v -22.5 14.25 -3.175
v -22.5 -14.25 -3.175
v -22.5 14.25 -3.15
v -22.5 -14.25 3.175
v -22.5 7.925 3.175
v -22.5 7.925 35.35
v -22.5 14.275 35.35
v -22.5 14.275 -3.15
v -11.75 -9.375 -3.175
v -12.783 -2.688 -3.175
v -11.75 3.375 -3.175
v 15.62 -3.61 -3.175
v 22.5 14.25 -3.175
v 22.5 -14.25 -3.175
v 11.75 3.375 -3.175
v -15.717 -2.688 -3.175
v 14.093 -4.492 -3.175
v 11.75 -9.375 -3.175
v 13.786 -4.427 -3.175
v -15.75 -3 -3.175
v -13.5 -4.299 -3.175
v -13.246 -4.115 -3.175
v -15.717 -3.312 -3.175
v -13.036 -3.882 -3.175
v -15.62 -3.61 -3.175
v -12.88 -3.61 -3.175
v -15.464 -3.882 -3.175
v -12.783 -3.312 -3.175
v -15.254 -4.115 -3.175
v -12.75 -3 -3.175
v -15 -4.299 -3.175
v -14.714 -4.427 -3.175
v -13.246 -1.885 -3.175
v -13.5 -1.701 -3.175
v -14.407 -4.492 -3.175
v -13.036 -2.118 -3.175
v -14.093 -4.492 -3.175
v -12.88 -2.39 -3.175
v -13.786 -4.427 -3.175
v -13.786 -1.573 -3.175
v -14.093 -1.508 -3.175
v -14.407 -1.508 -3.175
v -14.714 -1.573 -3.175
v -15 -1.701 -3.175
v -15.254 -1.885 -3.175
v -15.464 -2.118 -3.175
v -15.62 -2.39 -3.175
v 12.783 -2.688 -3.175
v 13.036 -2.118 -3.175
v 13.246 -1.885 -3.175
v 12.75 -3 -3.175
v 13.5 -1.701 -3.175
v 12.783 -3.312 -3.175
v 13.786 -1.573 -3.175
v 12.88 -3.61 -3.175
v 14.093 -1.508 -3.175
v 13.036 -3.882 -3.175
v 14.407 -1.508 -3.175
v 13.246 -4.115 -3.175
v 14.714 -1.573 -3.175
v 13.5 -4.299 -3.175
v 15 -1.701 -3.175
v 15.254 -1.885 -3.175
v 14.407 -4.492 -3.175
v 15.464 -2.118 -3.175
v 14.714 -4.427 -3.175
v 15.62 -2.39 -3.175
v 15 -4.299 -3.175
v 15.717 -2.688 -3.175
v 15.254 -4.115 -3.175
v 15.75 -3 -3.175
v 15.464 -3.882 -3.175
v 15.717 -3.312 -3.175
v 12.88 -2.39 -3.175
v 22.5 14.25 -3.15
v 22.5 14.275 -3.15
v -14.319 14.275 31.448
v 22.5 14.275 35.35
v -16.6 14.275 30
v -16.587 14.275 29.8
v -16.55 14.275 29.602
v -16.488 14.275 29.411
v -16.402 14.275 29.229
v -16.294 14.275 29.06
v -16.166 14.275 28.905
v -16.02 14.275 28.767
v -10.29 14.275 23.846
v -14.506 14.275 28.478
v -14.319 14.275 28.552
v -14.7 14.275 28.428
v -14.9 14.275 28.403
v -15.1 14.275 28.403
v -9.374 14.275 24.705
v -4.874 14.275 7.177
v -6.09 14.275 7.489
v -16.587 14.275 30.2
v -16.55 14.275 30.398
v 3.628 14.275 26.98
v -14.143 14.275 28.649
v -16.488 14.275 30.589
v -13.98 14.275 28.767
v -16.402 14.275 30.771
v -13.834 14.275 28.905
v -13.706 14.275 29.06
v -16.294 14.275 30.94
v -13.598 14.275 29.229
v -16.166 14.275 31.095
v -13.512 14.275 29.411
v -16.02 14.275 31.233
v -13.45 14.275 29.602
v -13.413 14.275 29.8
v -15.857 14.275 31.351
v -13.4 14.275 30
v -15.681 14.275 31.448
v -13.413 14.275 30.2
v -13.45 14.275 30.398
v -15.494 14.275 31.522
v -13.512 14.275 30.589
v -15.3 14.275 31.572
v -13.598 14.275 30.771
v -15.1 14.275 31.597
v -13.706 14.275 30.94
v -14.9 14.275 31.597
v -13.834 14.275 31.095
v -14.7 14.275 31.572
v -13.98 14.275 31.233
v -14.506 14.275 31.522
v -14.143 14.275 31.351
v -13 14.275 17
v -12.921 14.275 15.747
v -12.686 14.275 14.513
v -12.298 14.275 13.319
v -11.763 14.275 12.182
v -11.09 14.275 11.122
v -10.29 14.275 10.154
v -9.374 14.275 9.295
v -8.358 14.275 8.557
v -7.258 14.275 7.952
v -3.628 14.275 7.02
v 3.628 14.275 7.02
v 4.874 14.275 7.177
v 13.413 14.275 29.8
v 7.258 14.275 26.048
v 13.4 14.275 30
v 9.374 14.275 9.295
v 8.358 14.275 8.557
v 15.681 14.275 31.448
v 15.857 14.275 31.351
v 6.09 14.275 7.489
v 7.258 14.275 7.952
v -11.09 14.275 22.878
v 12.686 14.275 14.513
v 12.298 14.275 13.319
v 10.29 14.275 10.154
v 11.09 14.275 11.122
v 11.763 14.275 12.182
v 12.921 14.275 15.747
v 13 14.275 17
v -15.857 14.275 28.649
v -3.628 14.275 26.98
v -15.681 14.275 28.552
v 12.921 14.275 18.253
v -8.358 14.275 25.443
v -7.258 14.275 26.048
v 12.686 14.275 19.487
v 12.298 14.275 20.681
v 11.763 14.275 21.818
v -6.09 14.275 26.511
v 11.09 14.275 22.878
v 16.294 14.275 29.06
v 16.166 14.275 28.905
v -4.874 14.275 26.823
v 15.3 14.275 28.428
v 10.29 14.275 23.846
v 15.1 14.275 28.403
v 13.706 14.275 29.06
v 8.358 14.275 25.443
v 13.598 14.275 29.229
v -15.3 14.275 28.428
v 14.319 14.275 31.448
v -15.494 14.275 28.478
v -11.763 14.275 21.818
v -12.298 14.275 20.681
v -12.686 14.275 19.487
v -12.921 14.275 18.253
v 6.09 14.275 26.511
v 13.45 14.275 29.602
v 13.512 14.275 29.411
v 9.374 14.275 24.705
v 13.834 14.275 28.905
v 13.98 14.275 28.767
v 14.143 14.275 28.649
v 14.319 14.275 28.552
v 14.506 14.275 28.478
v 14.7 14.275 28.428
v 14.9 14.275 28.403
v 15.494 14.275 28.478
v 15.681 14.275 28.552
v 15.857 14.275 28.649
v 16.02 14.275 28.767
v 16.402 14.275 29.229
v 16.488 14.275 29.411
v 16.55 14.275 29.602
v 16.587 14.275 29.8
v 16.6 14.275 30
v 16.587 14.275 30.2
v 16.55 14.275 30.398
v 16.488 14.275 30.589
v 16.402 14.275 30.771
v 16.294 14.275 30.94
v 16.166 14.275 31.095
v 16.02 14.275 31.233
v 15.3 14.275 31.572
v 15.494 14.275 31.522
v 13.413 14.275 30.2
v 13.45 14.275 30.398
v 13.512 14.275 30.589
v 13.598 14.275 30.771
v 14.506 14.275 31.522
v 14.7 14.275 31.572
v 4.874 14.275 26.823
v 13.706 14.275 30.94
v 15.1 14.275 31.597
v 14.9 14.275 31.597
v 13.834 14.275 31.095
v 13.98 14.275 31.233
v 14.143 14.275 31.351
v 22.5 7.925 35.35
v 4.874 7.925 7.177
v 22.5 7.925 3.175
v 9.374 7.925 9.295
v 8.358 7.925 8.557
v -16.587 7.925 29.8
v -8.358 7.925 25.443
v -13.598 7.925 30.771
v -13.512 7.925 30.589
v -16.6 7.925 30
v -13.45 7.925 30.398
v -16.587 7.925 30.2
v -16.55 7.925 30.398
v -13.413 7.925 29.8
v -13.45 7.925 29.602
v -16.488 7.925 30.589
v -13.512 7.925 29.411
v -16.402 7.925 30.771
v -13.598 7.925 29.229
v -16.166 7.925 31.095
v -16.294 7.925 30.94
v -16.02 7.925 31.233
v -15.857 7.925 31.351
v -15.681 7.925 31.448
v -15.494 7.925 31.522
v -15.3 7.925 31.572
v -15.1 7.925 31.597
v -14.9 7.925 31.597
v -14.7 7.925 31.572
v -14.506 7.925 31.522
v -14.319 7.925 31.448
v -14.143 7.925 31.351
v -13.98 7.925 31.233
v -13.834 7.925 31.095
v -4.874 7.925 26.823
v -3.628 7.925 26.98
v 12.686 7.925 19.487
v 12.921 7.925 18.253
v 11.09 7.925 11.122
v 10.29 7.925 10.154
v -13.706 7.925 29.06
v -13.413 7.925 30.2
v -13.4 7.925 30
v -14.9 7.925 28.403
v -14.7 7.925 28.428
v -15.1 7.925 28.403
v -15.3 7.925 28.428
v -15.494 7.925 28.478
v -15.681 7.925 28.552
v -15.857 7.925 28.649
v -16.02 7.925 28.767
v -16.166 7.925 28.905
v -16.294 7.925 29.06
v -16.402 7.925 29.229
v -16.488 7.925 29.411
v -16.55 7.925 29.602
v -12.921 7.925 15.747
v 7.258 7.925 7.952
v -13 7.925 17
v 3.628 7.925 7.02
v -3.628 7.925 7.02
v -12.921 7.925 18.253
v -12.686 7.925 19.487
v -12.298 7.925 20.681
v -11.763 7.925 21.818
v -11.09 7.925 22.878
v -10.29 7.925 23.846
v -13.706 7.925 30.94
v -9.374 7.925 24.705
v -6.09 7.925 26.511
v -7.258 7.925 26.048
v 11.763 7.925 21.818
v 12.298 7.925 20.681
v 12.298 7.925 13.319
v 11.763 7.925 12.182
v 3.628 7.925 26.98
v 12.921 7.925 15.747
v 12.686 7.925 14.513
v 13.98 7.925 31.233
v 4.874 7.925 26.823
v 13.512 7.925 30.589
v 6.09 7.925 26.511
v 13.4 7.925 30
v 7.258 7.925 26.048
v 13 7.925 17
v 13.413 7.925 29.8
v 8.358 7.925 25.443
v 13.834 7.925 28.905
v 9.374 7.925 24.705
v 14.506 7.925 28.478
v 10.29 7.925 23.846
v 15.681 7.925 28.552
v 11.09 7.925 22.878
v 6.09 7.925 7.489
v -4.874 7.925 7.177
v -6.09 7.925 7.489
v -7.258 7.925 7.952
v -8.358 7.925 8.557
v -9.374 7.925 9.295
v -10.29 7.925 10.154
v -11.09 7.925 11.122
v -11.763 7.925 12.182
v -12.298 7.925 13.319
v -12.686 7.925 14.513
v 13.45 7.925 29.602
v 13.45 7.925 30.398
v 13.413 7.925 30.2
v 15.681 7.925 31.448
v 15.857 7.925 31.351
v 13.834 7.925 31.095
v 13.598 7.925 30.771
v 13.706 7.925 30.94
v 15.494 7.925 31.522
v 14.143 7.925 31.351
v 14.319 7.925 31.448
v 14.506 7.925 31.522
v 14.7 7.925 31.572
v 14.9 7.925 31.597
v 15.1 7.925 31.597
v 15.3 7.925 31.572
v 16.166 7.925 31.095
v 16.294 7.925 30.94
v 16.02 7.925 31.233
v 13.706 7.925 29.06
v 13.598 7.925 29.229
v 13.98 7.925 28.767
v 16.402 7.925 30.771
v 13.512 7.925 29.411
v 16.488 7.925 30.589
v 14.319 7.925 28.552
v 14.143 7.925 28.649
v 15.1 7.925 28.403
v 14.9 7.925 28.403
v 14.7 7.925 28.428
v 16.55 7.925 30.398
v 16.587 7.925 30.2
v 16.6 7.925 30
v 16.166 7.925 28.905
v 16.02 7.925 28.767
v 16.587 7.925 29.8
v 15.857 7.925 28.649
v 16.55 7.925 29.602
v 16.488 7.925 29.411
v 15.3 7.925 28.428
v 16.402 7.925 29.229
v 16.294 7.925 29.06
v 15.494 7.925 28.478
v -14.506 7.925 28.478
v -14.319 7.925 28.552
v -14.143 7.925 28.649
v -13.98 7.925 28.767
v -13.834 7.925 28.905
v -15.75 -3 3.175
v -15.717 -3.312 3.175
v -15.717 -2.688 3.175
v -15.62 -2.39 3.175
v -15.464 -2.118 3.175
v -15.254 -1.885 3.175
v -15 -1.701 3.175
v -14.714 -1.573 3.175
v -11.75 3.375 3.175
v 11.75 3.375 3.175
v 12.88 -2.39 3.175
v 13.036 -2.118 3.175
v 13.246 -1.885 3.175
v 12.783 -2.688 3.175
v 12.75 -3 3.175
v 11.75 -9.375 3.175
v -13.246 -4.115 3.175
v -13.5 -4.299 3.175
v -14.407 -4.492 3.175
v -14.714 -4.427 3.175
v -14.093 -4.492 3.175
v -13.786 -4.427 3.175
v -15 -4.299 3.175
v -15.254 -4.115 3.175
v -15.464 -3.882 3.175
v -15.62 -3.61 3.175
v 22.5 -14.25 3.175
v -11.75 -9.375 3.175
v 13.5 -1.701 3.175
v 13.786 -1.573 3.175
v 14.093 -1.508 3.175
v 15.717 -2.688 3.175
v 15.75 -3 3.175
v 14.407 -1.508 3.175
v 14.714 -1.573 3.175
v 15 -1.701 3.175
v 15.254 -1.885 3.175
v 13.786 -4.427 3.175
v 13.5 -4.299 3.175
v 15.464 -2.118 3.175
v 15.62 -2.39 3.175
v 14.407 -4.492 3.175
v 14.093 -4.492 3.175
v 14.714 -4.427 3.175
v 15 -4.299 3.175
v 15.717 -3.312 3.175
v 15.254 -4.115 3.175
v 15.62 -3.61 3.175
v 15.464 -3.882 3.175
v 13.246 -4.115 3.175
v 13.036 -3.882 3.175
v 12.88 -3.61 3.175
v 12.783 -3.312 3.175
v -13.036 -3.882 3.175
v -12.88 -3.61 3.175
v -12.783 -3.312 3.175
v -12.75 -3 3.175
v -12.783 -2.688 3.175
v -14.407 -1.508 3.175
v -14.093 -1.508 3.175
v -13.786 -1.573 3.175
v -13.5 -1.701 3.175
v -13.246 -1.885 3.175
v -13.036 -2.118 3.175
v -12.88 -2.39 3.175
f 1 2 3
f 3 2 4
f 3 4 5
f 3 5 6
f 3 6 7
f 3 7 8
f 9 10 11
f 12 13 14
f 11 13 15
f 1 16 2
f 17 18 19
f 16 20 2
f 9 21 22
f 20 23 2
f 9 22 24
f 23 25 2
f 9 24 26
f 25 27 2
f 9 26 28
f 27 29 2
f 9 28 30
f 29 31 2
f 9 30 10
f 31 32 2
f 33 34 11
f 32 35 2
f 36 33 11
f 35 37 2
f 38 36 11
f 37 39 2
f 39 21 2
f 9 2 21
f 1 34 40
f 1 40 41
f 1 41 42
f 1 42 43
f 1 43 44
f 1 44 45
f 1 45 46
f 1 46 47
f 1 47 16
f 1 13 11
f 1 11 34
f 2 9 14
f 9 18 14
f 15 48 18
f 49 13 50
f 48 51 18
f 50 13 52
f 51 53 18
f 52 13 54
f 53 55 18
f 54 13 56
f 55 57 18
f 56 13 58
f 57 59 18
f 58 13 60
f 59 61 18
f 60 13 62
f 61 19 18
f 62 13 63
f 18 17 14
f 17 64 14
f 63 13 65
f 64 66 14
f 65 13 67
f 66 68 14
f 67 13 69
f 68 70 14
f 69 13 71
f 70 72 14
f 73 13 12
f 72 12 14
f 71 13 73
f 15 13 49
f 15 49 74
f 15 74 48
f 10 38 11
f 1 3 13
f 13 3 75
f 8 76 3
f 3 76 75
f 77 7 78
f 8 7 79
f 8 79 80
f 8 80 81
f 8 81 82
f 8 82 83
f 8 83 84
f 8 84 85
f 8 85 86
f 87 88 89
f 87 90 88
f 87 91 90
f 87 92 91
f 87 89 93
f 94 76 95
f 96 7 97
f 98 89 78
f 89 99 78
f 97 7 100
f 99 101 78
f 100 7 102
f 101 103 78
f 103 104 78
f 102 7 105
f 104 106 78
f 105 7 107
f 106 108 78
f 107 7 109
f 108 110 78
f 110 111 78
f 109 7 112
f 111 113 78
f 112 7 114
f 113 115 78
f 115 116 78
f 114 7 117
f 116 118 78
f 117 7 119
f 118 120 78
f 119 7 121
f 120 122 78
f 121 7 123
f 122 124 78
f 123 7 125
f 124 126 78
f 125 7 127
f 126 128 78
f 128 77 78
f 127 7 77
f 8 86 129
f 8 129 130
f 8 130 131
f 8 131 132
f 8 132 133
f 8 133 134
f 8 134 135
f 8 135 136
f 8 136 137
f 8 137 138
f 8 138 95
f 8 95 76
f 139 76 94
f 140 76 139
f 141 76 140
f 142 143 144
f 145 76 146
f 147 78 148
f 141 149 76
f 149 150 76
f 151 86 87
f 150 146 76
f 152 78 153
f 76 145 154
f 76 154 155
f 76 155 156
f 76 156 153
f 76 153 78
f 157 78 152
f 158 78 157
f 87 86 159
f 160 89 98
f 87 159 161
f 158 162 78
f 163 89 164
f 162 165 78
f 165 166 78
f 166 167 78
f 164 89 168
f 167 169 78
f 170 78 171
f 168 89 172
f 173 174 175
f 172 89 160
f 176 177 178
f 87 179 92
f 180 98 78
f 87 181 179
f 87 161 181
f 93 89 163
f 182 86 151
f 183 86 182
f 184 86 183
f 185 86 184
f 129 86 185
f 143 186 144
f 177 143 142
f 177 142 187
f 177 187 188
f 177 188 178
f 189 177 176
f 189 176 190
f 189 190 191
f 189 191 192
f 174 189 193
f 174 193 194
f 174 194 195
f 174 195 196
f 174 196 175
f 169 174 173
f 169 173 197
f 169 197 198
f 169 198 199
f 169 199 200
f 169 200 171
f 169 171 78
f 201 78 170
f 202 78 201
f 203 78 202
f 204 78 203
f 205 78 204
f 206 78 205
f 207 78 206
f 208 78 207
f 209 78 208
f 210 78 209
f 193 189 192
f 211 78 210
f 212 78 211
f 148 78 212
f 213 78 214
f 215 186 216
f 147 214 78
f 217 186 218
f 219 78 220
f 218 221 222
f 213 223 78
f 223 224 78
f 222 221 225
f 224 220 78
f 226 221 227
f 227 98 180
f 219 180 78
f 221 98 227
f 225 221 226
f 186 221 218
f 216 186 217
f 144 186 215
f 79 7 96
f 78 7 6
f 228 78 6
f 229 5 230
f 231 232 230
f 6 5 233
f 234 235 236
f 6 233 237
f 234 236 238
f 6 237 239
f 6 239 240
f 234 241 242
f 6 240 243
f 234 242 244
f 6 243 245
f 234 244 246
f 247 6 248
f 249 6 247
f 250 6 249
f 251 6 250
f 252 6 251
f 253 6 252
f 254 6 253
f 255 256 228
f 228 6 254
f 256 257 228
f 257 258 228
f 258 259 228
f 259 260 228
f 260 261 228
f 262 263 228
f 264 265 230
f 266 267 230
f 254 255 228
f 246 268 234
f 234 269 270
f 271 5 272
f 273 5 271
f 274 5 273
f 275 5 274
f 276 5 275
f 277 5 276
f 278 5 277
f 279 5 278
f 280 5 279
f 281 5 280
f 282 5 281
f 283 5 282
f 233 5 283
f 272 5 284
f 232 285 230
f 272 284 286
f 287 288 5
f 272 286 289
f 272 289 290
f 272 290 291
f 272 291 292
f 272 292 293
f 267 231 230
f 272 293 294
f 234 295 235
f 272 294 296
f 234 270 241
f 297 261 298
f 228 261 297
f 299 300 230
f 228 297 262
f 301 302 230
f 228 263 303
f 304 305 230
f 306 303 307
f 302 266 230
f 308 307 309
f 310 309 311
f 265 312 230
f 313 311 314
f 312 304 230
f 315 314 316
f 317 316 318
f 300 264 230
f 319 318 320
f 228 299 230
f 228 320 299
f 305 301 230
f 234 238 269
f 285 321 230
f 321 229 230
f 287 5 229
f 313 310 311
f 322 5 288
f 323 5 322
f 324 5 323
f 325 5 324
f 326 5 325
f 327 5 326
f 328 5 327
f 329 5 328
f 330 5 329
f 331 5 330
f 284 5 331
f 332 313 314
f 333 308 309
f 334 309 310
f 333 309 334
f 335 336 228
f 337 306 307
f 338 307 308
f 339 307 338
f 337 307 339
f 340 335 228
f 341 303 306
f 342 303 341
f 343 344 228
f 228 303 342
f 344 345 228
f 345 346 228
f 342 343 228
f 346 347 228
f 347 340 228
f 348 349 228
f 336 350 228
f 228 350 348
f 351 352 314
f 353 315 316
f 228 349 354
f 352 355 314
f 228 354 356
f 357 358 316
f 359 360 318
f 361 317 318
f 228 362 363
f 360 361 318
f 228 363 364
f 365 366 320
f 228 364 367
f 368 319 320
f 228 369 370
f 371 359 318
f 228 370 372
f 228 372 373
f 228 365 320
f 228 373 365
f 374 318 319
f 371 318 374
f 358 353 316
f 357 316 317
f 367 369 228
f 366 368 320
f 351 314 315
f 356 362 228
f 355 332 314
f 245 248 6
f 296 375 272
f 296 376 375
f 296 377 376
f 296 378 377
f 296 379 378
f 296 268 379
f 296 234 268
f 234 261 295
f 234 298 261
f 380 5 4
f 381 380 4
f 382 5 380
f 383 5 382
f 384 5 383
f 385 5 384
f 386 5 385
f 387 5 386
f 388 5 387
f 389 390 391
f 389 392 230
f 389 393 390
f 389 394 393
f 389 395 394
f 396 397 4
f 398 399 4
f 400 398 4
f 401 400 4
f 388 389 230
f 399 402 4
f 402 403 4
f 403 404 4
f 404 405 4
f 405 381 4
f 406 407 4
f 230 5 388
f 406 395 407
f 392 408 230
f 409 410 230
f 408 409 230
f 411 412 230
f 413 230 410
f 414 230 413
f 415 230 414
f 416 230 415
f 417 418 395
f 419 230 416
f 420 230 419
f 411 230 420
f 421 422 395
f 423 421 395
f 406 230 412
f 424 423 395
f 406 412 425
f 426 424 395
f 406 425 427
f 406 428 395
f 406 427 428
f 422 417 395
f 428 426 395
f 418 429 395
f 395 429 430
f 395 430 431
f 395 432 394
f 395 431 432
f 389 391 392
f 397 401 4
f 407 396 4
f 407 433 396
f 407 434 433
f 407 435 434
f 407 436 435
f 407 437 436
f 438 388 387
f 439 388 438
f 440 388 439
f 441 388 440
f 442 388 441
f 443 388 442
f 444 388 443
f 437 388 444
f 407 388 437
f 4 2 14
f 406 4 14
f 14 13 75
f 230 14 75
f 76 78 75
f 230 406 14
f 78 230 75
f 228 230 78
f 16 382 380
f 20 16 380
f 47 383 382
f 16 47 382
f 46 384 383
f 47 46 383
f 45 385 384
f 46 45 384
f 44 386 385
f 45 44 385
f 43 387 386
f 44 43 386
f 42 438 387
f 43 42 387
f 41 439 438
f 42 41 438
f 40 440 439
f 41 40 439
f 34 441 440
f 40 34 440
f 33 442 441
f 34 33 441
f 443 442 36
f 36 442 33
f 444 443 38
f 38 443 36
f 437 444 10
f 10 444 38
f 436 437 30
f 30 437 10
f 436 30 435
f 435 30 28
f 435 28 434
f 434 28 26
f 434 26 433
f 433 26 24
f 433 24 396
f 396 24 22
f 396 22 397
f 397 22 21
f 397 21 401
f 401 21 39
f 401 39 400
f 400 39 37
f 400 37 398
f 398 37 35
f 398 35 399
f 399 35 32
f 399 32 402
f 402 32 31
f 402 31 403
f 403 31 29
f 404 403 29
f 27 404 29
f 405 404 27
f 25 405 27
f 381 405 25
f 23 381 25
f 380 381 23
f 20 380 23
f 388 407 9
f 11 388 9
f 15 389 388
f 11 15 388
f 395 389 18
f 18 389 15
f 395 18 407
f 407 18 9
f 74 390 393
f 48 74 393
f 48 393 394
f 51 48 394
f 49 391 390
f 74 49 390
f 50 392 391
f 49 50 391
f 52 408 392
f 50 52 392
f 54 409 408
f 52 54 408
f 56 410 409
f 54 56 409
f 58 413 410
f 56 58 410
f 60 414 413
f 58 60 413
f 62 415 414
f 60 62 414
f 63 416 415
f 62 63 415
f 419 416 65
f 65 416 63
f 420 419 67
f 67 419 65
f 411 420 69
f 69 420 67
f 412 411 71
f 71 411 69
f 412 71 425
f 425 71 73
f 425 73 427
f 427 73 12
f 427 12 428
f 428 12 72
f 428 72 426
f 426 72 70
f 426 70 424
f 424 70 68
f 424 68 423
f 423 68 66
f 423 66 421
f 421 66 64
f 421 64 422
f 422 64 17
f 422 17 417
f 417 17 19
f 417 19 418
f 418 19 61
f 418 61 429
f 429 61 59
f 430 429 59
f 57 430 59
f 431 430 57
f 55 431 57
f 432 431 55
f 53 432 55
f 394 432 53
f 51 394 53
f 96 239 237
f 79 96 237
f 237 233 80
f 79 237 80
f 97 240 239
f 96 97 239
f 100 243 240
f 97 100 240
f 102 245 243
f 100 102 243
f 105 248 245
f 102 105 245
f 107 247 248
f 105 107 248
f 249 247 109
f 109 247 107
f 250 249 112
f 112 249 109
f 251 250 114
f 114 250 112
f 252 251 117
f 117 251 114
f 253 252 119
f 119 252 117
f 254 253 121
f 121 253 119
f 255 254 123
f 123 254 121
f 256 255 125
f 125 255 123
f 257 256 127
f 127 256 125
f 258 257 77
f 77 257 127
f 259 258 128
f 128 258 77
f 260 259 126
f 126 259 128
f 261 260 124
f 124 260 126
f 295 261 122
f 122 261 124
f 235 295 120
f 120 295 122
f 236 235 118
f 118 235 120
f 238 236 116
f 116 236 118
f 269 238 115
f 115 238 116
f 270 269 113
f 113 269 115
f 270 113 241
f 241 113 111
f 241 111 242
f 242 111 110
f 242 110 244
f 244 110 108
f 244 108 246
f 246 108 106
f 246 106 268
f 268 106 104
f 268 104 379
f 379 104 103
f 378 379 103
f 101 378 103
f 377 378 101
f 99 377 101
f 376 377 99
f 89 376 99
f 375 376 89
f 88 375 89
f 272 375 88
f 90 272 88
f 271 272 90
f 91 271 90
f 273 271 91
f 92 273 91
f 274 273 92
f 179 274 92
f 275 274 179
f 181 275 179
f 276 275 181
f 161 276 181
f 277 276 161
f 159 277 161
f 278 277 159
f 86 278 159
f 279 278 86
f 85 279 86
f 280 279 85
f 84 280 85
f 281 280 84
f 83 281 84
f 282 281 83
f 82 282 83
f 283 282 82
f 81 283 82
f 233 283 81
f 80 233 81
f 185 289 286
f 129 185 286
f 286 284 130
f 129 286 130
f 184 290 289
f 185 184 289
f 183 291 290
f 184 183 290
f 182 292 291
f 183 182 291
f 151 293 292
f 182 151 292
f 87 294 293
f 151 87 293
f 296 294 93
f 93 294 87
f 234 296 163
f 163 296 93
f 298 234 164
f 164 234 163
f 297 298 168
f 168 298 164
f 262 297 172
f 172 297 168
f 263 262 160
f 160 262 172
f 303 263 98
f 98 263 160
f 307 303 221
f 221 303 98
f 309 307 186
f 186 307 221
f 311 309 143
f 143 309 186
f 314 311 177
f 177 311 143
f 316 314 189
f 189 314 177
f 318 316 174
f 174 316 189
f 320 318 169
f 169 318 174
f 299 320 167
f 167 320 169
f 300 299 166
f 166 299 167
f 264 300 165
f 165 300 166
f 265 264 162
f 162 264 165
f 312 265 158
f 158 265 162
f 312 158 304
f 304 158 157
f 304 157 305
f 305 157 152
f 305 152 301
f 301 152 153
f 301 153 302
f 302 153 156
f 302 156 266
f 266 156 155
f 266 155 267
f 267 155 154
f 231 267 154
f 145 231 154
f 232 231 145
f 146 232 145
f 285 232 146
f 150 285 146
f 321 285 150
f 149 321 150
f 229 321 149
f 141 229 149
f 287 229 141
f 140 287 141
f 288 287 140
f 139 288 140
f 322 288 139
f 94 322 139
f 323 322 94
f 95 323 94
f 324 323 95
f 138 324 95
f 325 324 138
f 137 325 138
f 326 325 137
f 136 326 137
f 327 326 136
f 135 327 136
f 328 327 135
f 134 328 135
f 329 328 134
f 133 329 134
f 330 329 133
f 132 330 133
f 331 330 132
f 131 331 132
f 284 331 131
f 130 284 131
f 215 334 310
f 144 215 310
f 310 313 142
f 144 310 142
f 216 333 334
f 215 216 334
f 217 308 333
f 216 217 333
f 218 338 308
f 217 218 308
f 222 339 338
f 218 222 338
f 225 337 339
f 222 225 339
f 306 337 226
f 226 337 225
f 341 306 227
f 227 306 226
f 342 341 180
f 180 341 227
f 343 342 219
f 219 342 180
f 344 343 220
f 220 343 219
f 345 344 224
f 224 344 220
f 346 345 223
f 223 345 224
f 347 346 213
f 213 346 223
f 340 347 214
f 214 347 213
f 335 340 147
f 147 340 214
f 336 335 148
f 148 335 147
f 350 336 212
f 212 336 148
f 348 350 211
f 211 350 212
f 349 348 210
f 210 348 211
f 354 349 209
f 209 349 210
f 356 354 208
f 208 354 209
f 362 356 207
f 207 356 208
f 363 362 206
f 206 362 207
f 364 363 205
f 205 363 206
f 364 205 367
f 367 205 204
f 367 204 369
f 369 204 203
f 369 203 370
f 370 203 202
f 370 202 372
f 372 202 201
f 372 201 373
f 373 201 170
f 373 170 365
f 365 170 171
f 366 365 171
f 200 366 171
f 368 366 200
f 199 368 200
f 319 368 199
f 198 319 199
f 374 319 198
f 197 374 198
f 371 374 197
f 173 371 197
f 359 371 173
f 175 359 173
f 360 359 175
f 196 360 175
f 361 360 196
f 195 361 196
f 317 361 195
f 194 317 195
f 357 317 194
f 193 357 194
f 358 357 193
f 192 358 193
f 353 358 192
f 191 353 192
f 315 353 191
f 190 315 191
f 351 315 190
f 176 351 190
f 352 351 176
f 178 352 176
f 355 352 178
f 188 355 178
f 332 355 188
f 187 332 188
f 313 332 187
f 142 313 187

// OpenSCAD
//////////////////////////////////////////////////////////////////////////////////////
// Mount for a servo for autoleveling
// modified servo_mount.scad 12/12/13 by zennmaster (thing:167440)
// last modified: 12/14/13
/////////////////////////////////////////////////////////////////////////////////////

servo_width=23.5;  // Width of cutout for servo.
servo_height=12.75; // Height of cutout for servo. 
servo_bolt_size=3; // Diameter of bolt shaft
mount_bolt_size = 3.2;

rotate([90,0,0]) // Lay it down for printing:

union(){
	difference(){
		mainblock();
		translate([0,0,3])
		servo_hole();
	}
}

module mainblock() { //Set up the "blank" part:
	difference() {
		block();
		rotate([90,0,0])
			translate([0,17.25,0])
				cylinder (h=10,r=2, $fn=30, center = true);
	}
}

module block(){
	// Main body:
	cube([45,6.35,28.5], true);
	// mount
	difference() {
		translate([0,16.1,-11.1]) cube([45,38.5,6.35],true);
		//mounting screw holes
		translate([15,30,-20]) rotate([0,0,0])cylinder(h=20,r=mount_bolt_size/2,$fn=50);
		translate([-15,30,-20]) rotate([0,0,0])cylinder(h=20,r=mount_bolt_size/2,$fn=50);
		// hole in mount
		hull() {
			translate([3,17,-16]) rotate([0,0,0])cylinder(h=10,r=10,$fn=50);
			translate([-3,17,-16]) rotate([0,0,0])cylinder(h=10,r=10,$fn=50);
		}
	}
}

module servo_hole(){ // Make the opening for the servo.  Adjust the variables above to fir your part.
	cube([servo_width,10,servo_height], true);
	translate([servo_width/2 + servo_bolt_size/2 +1 ,0,0])
		rotate([90,0,0])
			cylinder (h=10,r=servo_bolt_size/2, $fn=30, center = true);
		translate([-servo_width/2 - servo_bolt_size/2-1,0,0])
			rotate([90,0,0])
				cylinder (h=10,r=servo_bolt_size/2, $fn=30, center = true);
}
